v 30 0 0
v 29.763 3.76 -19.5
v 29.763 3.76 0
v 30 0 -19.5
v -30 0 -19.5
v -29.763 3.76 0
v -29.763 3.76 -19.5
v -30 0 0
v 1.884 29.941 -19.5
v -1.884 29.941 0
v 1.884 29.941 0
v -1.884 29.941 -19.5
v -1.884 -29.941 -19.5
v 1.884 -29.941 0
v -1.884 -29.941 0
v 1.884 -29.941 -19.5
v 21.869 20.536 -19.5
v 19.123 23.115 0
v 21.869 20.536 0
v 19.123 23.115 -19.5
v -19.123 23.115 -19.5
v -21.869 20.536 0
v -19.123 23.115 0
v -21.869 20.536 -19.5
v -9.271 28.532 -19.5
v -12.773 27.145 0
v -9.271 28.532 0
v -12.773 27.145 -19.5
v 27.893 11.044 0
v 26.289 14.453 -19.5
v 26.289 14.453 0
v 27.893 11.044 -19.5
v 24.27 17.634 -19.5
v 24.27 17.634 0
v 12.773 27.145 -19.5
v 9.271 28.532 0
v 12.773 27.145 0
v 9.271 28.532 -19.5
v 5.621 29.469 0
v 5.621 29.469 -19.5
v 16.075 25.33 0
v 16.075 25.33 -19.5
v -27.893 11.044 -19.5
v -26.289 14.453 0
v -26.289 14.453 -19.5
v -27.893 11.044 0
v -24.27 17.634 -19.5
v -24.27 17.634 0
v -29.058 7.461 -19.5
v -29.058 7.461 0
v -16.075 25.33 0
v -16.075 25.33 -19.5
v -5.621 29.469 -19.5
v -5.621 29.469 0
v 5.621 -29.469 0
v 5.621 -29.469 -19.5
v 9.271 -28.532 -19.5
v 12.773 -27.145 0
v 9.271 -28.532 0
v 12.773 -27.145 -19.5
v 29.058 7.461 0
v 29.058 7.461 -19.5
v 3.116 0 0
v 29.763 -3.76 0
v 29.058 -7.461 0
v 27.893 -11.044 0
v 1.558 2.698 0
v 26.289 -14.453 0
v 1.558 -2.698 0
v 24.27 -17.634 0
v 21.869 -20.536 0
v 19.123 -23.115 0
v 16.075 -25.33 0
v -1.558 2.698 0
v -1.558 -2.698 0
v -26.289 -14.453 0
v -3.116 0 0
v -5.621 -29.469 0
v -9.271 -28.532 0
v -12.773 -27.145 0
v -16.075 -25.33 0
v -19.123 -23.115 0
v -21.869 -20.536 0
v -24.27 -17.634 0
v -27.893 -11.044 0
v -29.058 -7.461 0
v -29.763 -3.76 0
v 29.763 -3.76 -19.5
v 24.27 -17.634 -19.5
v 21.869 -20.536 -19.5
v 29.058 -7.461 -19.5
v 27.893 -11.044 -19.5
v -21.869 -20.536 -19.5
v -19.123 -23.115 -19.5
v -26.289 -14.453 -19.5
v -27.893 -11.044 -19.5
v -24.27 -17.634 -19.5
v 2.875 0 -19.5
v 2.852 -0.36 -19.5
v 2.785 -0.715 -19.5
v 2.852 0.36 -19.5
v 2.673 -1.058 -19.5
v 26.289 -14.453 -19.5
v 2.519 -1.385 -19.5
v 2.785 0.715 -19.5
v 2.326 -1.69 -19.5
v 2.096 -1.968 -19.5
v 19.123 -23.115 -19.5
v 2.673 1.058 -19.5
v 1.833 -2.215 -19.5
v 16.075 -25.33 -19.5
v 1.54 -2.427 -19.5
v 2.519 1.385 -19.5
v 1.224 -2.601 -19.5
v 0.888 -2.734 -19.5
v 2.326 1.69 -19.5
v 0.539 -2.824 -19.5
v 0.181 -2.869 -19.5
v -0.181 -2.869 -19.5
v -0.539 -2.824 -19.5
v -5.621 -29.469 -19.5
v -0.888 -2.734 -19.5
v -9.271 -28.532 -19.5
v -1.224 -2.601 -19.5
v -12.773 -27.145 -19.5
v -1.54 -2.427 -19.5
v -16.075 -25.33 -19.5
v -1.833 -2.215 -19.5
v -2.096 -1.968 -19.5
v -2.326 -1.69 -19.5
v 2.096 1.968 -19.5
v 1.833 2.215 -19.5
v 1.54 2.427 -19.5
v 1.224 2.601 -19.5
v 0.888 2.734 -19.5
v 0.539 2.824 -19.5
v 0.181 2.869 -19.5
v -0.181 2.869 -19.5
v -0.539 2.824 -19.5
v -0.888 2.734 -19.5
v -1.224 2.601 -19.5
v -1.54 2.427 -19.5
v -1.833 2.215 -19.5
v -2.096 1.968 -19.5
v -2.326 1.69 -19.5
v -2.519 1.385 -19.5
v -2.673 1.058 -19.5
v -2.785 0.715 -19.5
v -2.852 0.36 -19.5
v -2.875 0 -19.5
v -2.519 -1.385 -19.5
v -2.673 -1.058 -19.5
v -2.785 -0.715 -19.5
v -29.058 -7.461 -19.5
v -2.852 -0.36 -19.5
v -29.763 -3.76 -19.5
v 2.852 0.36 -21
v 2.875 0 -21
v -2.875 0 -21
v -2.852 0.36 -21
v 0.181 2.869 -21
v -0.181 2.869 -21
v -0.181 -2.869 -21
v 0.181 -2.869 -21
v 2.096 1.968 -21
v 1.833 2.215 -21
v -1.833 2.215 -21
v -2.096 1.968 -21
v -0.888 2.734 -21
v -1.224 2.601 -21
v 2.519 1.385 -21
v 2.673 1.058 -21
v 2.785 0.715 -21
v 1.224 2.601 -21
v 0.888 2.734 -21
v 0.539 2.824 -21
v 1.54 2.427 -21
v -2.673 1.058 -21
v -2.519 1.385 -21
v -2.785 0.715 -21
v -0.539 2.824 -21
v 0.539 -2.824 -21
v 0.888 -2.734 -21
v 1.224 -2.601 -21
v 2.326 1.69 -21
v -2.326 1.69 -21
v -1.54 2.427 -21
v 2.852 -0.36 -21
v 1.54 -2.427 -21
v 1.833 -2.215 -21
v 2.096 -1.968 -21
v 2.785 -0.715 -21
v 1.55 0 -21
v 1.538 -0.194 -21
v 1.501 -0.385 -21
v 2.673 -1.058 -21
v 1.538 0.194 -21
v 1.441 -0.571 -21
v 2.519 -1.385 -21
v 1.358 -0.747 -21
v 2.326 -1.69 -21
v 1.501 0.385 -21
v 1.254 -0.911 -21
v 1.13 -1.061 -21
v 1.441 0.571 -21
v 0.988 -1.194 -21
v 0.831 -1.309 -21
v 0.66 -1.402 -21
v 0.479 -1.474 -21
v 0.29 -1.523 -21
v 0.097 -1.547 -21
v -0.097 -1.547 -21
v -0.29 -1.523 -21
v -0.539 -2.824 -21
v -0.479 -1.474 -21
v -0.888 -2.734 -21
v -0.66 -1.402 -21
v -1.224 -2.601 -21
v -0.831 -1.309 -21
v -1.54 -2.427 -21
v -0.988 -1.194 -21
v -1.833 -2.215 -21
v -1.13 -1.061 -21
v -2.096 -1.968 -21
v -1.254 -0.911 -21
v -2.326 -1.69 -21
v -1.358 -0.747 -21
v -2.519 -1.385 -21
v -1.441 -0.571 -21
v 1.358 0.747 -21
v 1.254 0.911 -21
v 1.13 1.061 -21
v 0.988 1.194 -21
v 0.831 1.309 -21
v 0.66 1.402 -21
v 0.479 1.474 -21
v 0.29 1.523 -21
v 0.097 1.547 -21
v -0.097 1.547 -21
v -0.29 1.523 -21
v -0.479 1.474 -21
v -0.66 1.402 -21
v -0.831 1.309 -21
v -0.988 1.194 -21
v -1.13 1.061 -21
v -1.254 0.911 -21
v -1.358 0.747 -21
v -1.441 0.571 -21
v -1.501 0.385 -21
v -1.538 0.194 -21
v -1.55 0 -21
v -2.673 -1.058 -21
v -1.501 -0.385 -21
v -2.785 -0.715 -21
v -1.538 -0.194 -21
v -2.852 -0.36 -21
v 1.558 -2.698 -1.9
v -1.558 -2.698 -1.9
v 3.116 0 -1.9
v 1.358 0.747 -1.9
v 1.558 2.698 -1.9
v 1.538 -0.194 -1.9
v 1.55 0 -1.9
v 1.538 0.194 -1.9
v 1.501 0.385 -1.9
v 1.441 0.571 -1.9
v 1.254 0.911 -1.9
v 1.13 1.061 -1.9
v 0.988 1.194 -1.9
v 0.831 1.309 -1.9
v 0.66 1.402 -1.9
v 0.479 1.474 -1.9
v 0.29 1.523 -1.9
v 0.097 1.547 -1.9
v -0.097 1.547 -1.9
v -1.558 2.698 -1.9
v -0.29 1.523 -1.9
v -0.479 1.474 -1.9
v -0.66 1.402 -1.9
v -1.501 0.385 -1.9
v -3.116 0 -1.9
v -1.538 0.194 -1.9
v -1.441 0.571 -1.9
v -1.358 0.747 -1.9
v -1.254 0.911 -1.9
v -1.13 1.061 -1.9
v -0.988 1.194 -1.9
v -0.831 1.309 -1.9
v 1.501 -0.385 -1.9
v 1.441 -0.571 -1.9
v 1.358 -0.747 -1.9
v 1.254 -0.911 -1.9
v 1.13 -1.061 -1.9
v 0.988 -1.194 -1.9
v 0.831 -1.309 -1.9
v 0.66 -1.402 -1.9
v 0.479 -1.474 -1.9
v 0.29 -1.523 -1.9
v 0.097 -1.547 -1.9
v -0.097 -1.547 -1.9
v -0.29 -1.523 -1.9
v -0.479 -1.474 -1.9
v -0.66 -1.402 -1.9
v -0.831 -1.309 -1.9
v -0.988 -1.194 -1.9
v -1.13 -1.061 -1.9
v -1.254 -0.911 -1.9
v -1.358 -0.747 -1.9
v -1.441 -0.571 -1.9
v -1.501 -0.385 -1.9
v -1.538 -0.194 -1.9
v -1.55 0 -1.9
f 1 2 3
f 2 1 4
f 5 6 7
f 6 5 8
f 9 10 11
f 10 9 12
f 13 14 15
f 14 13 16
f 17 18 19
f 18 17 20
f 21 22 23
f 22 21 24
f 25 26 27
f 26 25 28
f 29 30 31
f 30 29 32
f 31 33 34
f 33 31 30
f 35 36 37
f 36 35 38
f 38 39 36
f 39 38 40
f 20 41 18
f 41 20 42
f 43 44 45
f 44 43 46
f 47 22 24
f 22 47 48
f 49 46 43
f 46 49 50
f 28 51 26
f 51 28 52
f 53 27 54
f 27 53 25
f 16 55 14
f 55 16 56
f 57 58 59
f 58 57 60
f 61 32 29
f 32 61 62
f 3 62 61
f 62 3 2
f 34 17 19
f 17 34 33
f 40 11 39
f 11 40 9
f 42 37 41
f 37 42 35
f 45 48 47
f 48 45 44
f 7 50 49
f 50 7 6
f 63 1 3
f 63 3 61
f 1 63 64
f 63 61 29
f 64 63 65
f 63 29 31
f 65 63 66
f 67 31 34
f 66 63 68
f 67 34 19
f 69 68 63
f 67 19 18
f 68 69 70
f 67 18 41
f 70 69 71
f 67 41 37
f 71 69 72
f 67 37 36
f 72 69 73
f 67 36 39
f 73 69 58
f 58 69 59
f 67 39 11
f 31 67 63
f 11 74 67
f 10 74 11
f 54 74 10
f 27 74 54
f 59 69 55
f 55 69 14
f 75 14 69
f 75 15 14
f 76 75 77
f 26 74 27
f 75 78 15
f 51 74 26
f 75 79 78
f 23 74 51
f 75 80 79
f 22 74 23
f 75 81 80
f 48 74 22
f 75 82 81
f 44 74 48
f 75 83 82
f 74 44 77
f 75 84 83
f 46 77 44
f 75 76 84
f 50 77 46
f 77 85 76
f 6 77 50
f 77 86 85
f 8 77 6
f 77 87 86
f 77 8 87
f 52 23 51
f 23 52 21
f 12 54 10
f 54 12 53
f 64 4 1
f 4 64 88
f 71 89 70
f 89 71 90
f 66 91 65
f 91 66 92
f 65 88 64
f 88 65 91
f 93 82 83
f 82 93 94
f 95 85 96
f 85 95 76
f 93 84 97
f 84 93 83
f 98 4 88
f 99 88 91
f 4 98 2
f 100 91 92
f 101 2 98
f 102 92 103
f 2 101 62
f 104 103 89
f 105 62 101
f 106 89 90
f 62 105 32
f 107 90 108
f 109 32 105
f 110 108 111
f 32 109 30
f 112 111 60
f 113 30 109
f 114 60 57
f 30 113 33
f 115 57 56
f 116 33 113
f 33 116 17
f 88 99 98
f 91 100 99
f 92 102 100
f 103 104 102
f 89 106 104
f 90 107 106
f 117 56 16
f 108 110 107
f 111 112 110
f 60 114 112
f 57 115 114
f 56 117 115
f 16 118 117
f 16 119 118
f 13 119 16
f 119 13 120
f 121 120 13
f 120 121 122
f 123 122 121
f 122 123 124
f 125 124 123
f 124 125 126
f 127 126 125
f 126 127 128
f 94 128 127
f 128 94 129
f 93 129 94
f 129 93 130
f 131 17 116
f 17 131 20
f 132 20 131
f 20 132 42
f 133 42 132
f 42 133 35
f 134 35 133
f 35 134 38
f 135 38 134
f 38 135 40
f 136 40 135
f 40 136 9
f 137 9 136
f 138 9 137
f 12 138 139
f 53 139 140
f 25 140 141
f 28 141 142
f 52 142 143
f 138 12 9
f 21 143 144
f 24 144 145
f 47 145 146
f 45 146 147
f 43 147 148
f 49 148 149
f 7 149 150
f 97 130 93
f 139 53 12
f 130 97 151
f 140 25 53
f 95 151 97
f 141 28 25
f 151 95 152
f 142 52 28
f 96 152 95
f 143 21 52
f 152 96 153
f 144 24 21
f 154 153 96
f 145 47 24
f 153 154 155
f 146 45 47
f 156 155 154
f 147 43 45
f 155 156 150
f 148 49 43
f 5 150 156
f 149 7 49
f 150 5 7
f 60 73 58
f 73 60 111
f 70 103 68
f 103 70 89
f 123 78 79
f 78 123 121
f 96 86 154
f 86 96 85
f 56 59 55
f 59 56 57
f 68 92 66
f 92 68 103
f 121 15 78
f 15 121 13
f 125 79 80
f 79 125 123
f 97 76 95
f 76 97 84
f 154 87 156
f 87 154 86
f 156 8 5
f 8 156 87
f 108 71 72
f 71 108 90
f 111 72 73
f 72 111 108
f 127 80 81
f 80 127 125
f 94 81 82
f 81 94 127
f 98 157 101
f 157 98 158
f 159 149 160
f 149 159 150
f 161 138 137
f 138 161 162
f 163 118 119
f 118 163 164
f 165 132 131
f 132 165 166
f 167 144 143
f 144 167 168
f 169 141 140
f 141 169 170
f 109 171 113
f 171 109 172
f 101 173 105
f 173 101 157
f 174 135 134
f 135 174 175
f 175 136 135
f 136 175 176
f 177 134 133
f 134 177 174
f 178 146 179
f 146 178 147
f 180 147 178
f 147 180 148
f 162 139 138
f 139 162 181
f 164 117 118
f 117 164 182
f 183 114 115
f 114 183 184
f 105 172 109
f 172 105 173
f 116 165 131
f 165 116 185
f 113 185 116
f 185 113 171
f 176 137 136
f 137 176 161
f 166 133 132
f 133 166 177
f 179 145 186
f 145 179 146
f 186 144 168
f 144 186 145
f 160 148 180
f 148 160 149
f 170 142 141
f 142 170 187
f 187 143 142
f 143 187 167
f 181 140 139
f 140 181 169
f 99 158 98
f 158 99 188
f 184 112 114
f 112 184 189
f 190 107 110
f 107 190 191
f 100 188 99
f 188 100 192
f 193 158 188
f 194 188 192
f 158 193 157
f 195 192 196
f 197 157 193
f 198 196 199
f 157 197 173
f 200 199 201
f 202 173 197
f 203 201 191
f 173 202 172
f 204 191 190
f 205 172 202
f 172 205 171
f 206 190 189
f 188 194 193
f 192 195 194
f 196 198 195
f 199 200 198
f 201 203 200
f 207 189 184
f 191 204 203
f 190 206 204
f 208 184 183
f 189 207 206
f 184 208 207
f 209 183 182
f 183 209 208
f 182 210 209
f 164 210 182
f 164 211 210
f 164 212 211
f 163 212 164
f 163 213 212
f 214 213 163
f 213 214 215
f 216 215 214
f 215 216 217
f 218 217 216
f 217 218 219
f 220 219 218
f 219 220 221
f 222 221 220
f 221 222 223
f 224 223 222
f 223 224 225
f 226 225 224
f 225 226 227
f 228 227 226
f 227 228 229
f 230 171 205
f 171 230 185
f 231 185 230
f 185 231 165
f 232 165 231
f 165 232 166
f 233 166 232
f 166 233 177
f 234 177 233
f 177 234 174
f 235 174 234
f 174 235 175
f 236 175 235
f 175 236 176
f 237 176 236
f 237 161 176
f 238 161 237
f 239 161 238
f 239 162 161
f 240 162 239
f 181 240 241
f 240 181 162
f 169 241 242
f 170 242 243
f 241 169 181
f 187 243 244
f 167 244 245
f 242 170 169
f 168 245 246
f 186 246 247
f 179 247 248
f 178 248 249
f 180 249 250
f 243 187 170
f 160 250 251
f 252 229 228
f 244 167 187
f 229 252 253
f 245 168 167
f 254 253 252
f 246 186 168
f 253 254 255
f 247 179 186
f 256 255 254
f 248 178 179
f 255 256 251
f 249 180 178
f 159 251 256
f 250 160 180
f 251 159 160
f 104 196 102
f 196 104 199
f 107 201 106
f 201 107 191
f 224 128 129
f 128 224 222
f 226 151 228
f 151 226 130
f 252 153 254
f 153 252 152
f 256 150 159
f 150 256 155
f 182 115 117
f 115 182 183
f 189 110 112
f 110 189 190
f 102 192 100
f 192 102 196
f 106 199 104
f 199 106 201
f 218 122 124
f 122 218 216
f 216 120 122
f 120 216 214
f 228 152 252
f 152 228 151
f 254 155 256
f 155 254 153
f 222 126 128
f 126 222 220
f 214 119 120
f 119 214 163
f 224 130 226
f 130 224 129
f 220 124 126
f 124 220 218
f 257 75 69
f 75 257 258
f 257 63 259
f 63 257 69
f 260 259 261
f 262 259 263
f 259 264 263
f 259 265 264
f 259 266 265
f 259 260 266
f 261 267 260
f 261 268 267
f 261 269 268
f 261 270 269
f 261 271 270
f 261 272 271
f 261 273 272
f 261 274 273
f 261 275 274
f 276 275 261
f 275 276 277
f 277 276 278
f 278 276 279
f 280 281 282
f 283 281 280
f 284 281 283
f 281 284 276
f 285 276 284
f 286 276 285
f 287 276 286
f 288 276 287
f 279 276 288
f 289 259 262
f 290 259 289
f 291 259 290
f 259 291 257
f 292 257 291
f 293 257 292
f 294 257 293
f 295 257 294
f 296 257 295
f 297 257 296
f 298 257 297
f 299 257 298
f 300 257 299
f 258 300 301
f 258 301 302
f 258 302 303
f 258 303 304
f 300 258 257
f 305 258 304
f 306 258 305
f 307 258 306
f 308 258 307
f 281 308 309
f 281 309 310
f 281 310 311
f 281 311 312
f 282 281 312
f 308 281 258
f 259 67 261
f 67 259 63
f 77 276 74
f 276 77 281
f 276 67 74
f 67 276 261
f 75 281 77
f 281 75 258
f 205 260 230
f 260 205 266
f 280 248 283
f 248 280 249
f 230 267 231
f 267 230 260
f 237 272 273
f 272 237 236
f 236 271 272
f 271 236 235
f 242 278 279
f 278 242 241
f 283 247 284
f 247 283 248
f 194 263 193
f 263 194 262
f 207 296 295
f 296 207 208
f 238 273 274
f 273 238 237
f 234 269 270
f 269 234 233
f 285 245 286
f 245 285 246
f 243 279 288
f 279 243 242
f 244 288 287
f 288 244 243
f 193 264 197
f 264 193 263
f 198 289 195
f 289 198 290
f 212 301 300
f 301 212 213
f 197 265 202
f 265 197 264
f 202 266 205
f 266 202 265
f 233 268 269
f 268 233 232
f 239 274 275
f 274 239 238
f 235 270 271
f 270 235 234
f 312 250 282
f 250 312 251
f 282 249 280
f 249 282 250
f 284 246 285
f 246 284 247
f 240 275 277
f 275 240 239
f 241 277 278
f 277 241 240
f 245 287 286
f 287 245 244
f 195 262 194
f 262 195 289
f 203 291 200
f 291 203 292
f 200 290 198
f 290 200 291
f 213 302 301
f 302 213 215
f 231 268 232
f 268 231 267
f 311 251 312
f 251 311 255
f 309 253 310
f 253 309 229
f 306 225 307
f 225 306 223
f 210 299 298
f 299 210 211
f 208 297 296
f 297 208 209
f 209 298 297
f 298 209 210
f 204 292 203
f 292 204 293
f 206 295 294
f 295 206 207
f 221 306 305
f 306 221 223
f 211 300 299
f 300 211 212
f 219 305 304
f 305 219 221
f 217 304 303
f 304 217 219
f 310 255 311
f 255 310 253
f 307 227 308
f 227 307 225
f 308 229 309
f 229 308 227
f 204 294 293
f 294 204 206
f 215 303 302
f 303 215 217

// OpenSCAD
$fn = 50;

difference() {
	union() {
		translate(v = [0, 0, -19.5]) {
			cylinder(h = 19.5, r = 30.0);
		}
		#translate(v = [0, 0, -21.0]) {
			cylinder(h = 21, r = 2.875);
		}
	}
	union() {
		translate(v = [0, 0, 0]) {
			rotate(a = [0, 0, 0]) {
				difference() {
					union() {
						translate(v = [0, 0, -1.9]) {
							linear_extrude(height = 1.9) {
								polygon(points = [[3.1158, 0.0], [1.5579000000000005, 2.698361953111554], [-1.5578999999999994, 2.6983619531115544], [-3.1158, 3.815754496783323e-16], [-1.5579000000000014, -2.6983619531115535], [1.557899999999998, -2.6983619531115552]]);
							}
						}
					}
					union();
				}
			}
		}
		#translate(v = [0, 0, -100.0]) {
			cylinder(h = 200, r = 1.55);
		}
	}
}
